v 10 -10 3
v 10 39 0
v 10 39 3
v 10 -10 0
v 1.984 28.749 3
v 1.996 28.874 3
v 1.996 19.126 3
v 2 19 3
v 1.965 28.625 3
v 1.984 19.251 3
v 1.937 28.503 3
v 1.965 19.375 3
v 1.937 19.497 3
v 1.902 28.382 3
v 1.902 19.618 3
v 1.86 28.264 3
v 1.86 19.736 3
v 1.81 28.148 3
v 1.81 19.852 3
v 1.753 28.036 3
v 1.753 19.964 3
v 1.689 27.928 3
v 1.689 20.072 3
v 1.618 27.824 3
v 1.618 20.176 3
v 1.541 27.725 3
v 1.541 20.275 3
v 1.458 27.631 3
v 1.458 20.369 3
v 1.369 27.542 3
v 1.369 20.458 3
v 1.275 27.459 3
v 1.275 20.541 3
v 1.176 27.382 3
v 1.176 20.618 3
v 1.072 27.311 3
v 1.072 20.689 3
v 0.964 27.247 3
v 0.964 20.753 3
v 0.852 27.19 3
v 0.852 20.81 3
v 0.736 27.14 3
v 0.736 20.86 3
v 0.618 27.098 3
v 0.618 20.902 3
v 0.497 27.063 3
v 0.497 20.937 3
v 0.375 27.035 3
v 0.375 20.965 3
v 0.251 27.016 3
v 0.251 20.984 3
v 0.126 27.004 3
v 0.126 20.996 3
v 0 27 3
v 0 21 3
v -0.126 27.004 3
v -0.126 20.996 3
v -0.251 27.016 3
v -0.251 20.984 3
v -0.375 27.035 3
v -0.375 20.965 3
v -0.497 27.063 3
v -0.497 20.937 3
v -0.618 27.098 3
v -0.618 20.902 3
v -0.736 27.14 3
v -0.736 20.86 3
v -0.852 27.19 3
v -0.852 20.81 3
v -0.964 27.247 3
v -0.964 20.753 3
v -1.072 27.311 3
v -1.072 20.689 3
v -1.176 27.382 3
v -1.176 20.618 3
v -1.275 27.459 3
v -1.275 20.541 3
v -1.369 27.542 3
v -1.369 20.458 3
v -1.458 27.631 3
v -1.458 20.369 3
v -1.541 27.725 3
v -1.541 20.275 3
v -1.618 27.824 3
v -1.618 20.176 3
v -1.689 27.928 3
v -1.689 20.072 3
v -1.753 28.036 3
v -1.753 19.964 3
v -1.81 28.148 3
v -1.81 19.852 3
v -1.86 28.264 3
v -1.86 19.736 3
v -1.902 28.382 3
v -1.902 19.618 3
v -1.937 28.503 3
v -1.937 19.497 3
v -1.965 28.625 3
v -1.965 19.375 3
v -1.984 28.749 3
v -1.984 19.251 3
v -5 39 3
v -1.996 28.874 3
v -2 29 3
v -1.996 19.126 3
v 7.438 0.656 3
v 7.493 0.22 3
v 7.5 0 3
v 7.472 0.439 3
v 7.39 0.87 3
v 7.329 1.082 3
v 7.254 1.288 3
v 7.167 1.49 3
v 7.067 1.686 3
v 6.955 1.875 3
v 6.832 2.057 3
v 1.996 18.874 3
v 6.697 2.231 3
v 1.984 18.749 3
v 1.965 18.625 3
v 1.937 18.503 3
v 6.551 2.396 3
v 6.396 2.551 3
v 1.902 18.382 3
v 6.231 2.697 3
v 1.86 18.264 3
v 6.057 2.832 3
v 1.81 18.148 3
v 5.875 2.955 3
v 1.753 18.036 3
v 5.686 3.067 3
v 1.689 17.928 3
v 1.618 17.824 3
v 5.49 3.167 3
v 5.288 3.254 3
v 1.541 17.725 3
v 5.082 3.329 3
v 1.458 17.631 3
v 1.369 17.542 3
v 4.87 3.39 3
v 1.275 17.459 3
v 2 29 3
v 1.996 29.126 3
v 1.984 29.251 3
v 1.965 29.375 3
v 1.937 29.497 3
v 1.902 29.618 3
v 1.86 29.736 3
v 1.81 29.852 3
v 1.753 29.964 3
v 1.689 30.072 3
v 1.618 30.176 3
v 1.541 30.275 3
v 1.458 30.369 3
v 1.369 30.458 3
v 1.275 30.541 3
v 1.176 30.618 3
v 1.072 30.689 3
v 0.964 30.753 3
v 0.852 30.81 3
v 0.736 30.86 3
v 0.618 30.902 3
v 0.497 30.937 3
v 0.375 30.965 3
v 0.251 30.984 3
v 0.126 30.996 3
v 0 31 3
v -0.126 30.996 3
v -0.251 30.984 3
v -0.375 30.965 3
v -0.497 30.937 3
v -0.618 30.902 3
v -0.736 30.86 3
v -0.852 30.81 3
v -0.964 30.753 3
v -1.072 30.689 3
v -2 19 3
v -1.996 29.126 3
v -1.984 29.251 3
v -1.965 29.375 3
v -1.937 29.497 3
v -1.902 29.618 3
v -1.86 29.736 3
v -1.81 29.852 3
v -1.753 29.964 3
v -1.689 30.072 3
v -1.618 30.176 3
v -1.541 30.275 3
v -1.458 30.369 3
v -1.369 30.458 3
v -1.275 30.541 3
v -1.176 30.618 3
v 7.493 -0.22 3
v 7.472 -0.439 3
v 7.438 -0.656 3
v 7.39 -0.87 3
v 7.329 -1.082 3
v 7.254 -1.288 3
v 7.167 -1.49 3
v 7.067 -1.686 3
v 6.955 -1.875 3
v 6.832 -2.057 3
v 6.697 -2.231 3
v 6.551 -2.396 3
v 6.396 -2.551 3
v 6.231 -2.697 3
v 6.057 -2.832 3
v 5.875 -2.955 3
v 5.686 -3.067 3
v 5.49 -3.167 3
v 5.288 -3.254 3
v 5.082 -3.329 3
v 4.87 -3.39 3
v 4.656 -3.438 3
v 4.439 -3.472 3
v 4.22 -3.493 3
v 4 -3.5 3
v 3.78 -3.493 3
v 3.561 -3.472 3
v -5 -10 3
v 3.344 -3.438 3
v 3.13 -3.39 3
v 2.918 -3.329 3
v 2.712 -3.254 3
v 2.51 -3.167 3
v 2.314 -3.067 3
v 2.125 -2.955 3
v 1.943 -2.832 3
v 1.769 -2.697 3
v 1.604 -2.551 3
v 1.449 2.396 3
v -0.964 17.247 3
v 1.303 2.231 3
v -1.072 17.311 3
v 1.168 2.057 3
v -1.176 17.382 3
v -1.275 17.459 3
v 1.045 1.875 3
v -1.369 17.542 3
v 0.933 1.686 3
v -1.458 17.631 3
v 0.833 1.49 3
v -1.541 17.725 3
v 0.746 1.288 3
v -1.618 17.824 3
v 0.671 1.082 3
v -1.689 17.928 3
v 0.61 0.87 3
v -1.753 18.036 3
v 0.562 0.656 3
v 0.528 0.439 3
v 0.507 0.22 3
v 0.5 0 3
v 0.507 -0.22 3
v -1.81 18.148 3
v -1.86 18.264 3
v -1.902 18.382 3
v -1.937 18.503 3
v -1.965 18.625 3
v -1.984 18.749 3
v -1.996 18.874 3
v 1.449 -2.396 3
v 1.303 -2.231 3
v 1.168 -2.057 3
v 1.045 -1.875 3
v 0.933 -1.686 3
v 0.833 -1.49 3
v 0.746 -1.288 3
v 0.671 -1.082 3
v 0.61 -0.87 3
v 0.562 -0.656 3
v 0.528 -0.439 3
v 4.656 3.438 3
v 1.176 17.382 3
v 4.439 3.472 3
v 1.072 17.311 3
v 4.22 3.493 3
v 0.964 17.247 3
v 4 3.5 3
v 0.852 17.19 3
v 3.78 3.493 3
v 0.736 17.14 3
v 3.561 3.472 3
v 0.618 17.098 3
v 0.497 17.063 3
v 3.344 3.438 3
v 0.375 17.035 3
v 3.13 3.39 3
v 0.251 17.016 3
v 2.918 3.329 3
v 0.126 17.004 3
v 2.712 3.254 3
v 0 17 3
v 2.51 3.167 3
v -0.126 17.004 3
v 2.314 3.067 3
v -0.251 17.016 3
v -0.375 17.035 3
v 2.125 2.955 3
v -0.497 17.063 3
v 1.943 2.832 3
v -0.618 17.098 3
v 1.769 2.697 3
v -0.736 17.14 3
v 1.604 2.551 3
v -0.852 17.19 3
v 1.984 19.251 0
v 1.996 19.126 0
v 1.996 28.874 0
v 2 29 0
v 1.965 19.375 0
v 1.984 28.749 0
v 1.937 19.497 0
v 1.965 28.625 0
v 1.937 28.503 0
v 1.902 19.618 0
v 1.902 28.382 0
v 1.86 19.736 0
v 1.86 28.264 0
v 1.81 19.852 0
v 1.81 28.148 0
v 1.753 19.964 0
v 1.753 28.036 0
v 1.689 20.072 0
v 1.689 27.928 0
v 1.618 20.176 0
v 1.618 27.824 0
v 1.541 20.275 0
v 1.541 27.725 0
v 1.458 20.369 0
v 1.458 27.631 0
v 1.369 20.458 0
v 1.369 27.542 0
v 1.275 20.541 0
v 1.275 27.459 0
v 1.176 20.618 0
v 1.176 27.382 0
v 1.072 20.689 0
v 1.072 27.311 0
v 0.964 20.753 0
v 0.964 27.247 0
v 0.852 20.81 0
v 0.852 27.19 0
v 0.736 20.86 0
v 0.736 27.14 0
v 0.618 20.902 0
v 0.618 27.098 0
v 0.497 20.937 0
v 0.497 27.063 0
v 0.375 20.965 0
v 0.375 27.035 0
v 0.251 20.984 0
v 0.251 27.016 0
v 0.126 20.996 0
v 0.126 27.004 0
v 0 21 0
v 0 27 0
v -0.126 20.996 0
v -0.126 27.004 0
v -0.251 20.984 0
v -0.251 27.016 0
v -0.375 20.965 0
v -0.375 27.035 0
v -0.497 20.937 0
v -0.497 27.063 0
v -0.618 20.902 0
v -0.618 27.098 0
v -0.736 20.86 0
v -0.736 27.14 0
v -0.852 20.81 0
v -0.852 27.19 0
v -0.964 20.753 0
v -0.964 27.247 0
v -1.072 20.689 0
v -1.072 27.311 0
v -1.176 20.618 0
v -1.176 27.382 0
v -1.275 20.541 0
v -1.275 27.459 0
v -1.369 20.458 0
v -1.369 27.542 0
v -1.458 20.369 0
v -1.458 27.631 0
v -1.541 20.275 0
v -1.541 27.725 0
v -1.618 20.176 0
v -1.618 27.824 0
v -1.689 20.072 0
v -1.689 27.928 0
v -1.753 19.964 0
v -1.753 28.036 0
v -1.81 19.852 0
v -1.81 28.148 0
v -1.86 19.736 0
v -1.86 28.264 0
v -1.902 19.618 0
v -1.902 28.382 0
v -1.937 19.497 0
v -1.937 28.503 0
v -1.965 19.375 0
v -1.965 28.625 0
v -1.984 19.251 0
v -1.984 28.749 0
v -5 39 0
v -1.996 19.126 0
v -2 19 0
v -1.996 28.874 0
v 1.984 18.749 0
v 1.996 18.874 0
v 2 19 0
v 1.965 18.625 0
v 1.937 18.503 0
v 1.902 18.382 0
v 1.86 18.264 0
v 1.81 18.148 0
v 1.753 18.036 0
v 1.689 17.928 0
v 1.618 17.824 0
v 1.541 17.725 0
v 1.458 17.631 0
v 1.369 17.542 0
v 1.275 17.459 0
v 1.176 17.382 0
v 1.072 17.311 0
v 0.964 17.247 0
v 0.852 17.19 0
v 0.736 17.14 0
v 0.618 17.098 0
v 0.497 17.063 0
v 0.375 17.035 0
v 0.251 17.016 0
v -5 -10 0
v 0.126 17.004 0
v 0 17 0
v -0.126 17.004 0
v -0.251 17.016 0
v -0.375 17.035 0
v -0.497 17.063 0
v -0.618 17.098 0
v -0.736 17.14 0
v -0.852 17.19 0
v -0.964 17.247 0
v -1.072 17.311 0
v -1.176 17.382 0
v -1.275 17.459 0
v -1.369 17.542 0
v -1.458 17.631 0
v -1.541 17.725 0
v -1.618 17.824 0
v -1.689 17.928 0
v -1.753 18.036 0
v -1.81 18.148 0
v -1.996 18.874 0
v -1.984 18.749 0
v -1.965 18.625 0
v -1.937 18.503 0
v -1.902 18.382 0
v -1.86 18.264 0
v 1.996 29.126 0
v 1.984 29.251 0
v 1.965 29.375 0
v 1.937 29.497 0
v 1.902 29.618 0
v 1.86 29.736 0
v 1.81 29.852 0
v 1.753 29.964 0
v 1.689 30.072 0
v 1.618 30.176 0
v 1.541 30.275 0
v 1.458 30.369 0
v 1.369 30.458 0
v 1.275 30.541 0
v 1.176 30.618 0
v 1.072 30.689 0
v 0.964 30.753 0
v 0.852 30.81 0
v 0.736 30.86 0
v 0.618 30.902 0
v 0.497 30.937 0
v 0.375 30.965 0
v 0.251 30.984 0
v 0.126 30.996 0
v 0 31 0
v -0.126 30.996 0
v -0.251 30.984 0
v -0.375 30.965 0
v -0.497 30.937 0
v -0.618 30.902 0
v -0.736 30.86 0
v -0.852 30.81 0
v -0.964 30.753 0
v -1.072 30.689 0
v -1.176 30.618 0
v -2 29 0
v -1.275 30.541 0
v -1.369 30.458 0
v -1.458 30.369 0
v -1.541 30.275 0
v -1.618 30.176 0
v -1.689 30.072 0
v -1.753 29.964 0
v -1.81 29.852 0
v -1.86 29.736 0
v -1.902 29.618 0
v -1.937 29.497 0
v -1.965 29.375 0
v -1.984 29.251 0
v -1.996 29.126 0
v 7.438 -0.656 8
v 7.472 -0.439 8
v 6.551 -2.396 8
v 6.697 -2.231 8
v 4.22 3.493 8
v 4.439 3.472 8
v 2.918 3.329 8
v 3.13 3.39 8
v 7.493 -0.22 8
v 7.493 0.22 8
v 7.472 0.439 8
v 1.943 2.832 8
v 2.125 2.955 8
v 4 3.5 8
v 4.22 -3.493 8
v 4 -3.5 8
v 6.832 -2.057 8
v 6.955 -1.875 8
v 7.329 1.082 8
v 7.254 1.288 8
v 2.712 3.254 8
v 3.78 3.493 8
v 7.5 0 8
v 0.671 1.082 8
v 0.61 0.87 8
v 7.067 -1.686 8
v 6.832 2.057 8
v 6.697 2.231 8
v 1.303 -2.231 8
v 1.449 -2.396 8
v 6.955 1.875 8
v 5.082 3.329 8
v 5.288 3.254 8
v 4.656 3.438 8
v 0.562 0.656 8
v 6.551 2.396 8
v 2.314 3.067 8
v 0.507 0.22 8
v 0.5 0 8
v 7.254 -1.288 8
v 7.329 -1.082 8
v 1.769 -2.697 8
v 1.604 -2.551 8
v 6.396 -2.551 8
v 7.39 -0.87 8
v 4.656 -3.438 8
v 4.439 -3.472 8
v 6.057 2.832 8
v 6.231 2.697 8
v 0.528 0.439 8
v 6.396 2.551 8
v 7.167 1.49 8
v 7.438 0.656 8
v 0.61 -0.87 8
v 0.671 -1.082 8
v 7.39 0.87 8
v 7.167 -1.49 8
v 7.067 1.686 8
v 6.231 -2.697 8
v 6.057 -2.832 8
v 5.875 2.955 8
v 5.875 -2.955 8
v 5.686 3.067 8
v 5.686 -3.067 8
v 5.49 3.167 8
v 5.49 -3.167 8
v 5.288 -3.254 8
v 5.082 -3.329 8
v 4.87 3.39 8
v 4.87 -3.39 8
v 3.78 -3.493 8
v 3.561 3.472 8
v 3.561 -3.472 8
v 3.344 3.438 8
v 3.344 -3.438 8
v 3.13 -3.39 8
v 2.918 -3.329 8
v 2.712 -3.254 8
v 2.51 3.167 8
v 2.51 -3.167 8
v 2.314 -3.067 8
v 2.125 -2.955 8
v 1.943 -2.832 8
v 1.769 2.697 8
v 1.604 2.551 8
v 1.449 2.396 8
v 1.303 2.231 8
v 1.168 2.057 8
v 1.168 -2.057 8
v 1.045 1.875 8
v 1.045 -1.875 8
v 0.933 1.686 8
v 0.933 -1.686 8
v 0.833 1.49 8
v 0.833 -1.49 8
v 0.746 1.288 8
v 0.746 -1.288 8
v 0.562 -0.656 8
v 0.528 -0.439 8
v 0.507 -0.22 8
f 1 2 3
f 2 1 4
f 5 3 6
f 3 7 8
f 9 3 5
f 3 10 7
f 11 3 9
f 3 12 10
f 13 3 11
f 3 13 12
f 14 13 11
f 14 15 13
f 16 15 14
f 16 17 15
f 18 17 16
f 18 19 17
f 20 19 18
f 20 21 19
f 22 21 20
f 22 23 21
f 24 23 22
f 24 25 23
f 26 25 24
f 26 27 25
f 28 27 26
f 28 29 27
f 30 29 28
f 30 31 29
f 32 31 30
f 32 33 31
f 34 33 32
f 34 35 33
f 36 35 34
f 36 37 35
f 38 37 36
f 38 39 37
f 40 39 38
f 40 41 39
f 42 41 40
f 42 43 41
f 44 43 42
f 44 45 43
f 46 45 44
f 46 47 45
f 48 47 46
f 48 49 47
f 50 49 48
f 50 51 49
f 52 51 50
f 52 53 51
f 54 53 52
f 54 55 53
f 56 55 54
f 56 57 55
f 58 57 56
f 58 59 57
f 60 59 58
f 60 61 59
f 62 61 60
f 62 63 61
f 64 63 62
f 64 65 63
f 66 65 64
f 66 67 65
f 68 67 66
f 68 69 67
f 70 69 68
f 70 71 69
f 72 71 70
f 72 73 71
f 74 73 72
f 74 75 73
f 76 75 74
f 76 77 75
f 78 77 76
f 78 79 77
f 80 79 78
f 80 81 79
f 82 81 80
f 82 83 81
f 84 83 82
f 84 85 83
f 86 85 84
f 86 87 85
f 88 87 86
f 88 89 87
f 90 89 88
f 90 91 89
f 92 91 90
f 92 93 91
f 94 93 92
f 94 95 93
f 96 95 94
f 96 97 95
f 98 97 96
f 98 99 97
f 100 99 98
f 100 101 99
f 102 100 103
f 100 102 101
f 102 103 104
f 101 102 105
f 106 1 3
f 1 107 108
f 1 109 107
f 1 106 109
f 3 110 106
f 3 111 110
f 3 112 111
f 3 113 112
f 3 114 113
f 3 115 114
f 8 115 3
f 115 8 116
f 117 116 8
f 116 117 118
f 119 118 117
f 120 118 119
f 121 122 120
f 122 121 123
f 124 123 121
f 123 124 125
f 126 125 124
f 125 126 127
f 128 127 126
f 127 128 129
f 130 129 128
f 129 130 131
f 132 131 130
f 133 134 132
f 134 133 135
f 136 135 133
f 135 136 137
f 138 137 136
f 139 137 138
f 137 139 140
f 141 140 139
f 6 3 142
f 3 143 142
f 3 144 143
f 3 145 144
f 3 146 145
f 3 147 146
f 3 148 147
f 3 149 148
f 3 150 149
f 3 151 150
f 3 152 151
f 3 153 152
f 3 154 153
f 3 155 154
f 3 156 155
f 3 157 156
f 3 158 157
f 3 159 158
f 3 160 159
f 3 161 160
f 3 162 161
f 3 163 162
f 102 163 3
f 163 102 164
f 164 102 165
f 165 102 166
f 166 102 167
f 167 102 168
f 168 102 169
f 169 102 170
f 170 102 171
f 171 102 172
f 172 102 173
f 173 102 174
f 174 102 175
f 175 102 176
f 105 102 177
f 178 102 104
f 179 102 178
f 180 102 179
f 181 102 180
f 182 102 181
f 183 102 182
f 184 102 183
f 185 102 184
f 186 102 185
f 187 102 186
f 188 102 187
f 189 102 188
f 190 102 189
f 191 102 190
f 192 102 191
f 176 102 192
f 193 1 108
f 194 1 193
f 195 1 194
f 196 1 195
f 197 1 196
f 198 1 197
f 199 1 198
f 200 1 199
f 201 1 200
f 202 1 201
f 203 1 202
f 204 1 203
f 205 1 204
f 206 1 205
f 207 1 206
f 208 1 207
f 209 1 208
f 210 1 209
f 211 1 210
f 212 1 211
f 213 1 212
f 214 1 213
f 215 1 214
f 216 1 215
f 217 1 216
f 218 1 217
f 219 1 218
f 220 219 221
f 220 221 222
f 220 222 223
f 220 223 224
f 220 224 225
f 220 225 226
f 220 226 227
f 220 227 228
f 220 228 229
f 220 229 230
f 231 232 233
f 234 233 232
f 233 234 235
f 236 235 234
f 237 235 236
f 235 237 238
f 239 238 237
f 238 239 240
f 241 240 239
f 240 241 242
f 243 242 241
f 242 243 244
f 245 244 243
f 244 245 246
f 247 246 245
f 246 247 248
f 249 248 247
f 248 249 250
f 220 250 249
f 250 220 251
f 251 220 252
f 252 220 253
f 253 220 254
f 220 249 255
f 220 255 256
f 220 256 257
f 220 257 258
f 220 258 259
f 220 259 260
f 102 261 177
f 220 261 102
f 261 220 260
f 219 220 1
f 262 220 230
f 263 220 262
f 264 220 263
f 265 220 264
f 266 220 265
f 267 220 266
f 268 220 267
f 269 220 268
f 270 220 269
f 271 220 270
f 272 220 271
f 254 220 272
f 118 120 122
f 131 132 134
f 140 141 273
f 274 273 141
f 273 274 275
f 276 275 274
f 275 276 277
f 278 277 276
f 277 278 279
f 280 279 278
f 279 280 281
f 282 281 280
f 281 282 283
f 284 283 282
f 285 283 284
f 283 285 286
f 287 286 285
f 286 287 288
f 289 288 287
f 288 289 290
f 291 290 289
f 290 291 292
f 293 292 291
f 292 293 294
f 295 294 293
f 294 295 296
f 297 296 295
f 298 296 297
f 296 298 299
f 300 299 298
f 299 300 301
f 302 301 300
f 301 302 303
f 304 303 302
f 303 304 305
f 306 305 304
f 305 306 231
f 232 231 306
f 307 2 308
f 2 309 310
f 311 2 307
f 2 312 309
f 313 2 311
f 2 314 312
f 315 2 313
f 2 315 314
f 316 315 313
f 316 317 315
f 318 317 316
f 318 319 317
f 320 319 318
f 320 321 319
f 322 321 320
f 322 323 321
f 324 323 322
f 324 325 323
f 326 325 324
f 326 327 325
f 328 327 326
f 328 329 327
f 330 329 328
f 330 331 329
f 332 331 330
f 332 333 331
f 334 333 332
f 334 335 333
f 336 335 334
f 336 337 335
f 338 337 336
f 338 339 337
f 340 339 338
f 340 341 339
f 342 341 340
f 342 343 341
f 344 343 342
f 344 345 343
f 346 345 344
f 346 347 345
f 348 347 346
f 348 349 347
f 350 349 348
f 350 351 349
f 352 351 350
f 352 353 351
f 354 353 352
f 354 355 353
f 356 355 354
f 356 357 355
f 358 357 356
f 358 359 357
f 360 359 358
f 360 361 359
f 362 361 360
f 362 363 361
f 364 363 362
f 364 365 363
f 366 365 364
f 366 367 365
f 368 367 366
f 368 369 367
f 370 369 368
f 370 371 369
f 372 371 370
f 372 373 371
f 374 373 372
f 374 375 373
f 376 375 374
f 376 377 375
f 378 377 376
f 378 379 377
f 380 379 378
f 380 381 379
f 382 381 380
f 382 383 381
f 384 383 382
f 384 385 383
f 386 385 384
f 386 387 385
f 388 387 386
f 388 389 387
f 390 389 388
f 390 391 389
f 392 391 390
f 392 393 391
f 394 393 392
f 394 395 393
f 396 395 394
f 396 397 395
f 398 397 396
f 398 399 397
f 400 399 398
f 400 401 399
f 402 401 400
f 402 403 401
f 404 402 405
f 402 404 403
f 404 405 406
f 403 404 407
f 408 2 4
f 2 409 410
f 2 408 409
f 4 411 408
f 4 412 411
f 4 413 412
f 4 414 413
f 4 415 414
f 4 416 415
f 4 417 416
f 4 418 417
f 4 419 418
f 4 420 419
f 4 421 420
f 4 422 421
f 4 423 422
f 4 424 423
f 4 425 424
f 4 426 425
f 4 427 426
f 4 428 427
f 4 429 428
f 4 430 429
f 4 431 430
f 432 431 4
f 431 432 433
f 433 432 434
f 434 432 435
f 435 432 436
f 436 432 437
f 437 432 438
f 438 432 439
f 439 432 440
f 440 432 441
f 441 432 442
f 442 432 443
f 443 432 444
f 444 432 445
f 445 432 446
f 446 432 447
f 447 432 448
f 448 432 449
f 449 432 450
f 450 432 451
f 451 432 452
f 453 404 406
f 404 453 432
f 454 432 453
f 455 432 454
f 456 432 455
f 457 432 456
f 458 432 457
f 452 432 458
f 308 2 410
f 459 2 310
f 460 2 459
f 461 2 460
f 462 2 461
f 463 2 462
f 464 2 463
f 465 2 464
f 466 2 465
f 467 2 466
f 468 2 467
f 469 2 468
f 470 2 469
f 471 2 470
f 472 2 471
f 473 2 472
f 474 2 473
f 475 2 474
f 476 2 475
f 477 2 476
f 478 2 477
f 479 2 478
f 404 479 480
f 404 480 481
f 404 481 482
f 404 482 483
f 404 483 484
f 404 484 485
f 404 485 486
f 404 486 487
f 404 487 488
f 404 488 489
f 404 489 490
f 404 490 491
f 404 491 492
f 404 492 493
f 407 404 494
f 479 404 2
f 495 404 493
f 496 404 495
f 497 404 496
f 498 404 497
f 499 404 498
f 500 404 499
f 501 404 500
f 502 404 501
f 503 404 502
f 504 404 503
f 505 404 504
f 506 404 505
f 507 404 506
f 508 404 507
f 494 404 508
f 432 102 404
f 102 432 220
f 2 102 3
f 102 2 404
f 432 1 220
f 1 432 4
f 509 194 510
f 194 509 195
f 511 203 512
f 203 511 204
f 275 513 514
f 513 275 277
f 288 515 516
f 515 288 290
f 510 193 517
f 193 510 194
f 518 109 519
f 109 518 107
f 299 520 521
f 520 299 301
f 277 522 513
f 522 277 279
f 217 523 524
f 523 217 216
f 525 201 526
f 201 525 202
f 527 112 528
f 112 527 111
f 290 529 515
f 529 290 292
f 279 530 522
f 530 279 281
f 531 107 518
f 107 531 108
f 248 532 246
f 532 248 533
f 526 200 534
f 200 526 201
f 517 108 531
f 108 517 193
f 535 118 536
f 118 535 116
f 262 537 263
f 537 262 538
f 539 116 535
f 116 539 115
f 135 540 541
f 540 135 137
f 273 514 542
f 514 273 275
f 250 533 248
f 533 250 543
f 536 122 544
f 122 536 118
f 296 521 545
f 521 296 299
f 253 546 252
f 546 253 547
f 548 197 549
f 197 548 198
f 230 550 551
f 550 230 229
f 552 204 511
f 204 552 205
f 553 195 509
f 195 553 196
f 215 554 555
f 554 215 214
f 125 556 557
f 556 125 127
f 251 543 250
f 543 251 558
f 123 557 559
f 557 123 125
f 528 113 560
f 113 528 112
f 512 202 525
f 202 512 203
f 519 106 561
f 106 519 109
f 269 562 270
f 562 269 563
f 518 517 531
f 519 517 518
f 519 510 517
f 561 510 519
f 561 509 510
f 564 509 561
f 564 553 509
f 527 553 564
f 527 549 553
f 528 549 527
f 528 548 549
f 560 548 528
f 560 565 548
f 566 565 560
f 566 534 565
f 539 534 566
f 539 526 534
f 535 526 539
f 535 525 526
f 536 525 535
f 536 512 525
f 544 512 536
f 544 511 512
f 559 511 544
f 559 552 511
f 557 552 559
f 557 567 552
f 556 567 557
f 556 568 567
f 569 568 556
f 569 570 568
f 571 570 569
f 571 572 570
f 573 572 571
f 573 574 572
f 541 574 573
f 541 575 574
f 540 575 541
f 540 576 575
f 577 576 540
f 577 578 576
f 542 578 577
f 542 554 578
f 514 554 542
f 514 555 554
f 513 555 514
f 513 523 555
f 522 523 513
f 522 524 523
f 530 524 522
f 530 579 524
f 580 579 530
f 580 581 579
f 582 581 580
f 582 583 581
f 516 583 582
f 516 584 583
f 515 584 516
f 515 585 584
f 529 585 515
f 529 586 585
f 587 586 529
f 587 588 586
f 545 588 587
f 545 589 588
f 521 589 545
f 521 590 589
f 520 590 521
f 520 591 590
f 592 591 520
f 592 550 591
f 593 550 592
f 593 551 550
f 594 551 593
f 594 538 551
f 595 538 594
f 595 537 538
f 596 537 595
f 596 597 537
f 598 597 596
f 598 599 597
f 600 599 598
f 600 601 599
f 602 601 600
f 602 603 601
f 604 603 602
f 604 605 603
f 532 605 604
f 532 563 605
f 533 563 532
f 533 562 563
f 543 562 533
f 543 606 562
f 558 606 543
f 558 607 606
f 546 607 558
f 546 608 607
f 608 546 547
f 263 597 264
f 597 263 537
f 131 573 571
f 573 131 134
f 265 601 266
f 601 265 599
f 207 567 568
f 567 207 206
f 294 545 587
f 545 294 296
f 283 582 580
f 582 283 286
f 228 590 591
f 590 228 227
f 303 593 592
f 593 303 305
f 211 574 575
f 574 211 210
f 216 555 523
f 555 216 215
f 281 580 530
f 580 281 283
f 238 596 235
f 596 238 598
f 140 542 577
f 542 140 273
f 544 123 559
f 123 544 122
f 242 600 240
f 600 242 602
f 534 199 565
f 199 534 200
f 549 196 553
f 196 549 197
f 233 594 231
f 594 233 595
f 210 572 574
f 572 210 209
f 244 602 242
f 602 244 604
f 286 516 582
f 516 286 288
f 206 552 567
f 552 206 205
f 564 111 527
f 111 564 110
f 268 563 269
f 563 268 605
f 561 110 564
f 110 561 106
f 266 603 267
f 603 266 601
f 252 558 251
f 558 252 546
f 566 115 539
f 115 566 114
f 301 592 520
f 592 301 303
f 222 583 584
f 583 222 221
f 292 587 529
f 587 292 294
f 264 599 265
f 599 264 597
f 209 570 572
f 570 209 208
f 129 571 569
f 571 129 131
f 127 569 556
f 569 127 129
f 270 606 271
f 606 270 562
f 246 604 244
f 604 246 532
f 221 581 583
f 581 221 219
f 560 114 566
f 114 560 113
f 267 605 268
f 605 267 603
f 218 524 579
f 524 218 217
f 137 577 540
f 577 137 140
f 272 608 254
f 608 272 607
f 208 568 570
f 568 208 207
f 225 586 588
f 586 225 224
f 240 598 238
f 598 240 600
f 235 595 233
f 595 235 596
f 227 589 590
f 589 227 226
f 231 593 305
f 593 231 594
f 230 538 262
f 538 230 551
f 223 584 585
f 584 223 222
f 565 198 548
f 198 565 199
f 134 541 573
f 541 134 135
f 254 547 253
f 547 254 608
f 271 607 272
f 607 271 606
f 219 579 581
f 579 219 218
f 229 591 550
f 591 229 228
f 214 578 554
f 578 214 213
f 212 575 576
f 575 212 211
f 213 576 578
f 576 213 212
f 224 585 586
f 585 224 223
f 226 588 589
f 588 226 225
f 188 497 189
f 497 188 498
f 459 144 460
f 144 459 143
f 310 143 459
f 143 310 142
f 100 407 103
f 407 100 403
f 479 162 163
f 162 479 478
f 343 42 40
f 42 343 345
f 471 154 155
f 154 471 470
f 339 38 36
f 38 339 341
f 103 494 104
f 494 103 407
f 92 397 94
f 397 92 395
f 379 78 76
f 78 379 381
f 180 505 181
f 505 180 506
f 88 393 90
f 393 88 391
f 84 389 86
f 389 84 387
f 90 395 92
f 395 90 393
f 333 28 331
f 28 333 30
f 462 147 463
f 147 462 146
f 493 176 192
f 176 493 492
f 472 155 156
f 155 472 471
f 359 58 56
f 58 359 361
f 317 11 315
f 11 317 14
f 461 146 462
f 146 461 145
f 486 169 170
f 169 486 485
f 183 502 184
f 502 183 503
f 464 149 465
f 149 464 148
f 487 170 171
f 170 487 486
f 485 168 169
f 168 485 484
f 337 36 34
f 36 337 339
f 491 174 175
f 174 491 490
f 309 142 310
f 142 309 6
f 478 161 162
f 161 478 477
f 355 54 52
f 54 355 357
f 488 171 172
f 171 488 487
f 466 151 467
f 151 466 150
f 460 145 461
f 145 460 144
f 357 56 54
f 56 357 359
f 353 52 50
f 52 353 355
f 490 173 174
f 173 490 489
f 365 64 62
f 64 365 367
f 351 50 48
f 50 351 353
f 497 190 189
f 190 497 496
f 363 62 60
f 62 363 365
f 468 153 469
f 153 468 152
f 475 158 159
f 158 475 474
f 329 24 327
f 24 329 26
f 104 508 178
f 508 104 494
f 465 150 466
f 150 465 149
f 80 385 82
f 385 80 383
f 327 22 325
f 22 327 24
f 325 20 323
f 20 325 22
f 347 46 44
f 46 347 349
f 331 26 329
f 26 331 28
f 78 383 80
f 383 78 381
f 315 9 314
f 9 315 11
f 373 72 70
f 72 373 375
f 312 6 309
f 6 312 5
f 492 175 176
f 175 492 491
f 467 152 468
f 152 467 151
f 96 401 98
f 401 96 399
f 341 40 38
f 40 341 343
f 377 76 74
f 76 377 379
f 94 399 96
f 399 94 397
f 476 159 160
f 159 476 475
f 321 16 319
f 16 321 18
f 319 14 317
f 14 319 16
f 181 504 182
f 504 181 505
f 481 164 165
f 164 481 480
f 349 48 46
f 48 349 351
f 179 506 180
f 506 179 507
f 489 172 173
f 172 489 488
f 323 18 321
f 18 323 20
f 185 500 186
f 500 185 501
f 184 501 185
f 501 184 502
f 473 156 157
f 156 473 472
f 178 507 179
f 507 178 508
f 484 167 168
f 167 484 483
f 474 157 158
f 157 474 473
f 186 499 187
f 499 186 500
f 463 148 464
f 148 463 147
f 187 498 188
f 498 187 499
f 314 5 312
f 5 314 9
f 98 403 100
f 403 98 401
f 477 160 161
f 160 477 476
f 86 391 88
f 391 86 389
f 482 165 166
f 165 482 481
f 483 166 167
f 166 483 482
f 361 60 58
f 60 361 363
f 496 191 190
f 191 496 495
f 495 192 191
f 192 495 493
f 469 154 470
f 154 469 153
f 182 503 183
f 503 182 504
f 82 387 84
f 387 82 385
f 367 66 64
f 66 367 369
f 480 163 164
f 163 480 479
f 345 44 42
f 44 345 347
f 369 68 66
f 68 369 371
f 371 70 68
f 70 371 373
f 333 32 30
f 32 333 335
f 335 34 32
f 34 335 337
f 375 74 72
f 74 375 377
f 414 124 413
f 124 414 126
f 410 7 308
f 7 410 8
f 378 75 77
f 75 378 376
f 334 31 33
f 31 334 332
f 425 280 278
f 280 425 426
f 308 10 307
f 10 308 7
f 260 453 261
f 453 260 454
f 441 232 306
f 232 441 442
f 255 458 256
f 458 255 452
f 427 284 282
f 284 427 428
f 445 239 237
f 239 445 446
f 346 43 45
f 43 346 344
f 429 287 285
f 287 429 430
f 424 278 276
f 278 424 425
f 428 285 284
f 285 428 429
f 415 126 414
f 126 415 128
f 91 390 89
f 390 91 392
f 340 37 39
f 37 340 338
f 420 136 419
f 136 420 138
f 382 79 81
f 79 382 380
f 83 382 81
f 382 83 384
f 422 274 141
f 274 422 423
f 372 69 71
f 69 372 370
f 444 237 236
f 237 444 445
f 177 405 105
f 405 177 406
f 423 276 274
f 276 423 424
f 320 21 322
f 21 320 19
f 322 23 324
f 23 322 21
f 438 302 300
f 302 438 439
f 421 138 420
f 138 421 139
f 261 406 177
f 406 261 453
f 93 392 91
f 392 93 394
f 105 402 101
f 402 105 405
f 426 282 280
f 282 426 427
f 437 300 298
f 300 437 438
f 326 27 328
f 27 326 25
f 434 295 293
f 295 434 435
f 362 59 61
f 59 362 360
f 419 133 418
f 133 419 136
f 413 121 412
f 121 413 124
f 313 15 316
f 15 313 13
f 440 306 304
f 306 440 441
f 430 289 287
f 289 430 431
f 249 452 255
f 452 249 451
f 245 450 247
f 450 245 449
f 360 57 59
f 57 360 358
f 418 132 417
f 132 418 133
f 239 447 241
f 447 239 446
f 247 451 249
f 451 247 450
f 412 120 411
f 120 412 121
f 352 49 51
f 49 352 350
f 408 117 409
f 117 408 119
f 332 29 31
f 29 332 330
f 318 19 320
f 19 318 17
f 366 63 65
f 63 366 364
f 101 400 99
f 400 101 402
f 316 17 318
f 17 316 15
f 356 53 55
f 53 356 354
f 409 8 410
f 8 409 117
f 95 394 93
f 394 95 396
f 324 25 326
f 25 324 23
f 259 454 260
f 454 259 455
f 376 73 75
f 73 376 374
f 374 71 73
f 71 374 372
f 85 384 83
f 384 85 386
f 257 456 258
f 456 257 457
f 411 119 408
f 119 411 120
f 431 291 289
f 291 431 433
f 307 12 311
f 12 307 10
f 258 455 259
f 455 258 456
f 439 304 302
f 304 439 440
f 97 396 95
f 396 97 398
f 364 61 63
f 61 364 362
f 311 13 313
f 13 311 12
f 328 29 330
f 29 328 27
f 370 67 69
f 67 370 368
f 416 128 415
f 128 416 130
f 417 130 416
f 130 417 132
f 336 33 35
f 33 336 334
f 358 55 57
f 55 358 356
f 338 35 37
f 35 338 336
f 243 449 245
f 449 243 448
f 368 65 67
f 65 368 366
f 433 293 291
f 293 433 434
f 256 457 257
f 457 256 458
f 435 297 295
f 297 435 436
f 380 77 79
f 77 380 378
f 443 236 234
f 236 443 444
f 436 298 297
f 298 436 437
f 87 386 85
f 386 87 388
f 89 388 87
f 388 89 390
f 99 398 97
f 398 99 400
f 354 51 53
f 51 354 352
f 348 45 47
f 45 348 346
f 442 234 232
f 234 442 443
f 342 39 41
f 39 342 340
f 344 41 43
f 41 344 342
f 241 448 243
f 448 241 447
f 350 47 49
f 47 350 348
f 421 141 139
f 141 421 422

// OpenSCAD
difference() {
union() {

    translate([-5, -10,0])
        cube([15, 49, 3]);

 translate([4,0,0]){
      rotate([0,0,0]){
           cylinder(h=8, r=3.5, $fn=100, center=false);
      }
     
  }
  
    
}
      translate([0,29,-1]){
      rotate([0,0,0]){
           cylinder(h=1000, r=2, $fn=100, center=false);
      }
  }
    translate([0,19,-1]){
      rotate([0,0,0]){
           cylinder(h=1000, r=2, $fn=100, center=false);
      }
  }


}
